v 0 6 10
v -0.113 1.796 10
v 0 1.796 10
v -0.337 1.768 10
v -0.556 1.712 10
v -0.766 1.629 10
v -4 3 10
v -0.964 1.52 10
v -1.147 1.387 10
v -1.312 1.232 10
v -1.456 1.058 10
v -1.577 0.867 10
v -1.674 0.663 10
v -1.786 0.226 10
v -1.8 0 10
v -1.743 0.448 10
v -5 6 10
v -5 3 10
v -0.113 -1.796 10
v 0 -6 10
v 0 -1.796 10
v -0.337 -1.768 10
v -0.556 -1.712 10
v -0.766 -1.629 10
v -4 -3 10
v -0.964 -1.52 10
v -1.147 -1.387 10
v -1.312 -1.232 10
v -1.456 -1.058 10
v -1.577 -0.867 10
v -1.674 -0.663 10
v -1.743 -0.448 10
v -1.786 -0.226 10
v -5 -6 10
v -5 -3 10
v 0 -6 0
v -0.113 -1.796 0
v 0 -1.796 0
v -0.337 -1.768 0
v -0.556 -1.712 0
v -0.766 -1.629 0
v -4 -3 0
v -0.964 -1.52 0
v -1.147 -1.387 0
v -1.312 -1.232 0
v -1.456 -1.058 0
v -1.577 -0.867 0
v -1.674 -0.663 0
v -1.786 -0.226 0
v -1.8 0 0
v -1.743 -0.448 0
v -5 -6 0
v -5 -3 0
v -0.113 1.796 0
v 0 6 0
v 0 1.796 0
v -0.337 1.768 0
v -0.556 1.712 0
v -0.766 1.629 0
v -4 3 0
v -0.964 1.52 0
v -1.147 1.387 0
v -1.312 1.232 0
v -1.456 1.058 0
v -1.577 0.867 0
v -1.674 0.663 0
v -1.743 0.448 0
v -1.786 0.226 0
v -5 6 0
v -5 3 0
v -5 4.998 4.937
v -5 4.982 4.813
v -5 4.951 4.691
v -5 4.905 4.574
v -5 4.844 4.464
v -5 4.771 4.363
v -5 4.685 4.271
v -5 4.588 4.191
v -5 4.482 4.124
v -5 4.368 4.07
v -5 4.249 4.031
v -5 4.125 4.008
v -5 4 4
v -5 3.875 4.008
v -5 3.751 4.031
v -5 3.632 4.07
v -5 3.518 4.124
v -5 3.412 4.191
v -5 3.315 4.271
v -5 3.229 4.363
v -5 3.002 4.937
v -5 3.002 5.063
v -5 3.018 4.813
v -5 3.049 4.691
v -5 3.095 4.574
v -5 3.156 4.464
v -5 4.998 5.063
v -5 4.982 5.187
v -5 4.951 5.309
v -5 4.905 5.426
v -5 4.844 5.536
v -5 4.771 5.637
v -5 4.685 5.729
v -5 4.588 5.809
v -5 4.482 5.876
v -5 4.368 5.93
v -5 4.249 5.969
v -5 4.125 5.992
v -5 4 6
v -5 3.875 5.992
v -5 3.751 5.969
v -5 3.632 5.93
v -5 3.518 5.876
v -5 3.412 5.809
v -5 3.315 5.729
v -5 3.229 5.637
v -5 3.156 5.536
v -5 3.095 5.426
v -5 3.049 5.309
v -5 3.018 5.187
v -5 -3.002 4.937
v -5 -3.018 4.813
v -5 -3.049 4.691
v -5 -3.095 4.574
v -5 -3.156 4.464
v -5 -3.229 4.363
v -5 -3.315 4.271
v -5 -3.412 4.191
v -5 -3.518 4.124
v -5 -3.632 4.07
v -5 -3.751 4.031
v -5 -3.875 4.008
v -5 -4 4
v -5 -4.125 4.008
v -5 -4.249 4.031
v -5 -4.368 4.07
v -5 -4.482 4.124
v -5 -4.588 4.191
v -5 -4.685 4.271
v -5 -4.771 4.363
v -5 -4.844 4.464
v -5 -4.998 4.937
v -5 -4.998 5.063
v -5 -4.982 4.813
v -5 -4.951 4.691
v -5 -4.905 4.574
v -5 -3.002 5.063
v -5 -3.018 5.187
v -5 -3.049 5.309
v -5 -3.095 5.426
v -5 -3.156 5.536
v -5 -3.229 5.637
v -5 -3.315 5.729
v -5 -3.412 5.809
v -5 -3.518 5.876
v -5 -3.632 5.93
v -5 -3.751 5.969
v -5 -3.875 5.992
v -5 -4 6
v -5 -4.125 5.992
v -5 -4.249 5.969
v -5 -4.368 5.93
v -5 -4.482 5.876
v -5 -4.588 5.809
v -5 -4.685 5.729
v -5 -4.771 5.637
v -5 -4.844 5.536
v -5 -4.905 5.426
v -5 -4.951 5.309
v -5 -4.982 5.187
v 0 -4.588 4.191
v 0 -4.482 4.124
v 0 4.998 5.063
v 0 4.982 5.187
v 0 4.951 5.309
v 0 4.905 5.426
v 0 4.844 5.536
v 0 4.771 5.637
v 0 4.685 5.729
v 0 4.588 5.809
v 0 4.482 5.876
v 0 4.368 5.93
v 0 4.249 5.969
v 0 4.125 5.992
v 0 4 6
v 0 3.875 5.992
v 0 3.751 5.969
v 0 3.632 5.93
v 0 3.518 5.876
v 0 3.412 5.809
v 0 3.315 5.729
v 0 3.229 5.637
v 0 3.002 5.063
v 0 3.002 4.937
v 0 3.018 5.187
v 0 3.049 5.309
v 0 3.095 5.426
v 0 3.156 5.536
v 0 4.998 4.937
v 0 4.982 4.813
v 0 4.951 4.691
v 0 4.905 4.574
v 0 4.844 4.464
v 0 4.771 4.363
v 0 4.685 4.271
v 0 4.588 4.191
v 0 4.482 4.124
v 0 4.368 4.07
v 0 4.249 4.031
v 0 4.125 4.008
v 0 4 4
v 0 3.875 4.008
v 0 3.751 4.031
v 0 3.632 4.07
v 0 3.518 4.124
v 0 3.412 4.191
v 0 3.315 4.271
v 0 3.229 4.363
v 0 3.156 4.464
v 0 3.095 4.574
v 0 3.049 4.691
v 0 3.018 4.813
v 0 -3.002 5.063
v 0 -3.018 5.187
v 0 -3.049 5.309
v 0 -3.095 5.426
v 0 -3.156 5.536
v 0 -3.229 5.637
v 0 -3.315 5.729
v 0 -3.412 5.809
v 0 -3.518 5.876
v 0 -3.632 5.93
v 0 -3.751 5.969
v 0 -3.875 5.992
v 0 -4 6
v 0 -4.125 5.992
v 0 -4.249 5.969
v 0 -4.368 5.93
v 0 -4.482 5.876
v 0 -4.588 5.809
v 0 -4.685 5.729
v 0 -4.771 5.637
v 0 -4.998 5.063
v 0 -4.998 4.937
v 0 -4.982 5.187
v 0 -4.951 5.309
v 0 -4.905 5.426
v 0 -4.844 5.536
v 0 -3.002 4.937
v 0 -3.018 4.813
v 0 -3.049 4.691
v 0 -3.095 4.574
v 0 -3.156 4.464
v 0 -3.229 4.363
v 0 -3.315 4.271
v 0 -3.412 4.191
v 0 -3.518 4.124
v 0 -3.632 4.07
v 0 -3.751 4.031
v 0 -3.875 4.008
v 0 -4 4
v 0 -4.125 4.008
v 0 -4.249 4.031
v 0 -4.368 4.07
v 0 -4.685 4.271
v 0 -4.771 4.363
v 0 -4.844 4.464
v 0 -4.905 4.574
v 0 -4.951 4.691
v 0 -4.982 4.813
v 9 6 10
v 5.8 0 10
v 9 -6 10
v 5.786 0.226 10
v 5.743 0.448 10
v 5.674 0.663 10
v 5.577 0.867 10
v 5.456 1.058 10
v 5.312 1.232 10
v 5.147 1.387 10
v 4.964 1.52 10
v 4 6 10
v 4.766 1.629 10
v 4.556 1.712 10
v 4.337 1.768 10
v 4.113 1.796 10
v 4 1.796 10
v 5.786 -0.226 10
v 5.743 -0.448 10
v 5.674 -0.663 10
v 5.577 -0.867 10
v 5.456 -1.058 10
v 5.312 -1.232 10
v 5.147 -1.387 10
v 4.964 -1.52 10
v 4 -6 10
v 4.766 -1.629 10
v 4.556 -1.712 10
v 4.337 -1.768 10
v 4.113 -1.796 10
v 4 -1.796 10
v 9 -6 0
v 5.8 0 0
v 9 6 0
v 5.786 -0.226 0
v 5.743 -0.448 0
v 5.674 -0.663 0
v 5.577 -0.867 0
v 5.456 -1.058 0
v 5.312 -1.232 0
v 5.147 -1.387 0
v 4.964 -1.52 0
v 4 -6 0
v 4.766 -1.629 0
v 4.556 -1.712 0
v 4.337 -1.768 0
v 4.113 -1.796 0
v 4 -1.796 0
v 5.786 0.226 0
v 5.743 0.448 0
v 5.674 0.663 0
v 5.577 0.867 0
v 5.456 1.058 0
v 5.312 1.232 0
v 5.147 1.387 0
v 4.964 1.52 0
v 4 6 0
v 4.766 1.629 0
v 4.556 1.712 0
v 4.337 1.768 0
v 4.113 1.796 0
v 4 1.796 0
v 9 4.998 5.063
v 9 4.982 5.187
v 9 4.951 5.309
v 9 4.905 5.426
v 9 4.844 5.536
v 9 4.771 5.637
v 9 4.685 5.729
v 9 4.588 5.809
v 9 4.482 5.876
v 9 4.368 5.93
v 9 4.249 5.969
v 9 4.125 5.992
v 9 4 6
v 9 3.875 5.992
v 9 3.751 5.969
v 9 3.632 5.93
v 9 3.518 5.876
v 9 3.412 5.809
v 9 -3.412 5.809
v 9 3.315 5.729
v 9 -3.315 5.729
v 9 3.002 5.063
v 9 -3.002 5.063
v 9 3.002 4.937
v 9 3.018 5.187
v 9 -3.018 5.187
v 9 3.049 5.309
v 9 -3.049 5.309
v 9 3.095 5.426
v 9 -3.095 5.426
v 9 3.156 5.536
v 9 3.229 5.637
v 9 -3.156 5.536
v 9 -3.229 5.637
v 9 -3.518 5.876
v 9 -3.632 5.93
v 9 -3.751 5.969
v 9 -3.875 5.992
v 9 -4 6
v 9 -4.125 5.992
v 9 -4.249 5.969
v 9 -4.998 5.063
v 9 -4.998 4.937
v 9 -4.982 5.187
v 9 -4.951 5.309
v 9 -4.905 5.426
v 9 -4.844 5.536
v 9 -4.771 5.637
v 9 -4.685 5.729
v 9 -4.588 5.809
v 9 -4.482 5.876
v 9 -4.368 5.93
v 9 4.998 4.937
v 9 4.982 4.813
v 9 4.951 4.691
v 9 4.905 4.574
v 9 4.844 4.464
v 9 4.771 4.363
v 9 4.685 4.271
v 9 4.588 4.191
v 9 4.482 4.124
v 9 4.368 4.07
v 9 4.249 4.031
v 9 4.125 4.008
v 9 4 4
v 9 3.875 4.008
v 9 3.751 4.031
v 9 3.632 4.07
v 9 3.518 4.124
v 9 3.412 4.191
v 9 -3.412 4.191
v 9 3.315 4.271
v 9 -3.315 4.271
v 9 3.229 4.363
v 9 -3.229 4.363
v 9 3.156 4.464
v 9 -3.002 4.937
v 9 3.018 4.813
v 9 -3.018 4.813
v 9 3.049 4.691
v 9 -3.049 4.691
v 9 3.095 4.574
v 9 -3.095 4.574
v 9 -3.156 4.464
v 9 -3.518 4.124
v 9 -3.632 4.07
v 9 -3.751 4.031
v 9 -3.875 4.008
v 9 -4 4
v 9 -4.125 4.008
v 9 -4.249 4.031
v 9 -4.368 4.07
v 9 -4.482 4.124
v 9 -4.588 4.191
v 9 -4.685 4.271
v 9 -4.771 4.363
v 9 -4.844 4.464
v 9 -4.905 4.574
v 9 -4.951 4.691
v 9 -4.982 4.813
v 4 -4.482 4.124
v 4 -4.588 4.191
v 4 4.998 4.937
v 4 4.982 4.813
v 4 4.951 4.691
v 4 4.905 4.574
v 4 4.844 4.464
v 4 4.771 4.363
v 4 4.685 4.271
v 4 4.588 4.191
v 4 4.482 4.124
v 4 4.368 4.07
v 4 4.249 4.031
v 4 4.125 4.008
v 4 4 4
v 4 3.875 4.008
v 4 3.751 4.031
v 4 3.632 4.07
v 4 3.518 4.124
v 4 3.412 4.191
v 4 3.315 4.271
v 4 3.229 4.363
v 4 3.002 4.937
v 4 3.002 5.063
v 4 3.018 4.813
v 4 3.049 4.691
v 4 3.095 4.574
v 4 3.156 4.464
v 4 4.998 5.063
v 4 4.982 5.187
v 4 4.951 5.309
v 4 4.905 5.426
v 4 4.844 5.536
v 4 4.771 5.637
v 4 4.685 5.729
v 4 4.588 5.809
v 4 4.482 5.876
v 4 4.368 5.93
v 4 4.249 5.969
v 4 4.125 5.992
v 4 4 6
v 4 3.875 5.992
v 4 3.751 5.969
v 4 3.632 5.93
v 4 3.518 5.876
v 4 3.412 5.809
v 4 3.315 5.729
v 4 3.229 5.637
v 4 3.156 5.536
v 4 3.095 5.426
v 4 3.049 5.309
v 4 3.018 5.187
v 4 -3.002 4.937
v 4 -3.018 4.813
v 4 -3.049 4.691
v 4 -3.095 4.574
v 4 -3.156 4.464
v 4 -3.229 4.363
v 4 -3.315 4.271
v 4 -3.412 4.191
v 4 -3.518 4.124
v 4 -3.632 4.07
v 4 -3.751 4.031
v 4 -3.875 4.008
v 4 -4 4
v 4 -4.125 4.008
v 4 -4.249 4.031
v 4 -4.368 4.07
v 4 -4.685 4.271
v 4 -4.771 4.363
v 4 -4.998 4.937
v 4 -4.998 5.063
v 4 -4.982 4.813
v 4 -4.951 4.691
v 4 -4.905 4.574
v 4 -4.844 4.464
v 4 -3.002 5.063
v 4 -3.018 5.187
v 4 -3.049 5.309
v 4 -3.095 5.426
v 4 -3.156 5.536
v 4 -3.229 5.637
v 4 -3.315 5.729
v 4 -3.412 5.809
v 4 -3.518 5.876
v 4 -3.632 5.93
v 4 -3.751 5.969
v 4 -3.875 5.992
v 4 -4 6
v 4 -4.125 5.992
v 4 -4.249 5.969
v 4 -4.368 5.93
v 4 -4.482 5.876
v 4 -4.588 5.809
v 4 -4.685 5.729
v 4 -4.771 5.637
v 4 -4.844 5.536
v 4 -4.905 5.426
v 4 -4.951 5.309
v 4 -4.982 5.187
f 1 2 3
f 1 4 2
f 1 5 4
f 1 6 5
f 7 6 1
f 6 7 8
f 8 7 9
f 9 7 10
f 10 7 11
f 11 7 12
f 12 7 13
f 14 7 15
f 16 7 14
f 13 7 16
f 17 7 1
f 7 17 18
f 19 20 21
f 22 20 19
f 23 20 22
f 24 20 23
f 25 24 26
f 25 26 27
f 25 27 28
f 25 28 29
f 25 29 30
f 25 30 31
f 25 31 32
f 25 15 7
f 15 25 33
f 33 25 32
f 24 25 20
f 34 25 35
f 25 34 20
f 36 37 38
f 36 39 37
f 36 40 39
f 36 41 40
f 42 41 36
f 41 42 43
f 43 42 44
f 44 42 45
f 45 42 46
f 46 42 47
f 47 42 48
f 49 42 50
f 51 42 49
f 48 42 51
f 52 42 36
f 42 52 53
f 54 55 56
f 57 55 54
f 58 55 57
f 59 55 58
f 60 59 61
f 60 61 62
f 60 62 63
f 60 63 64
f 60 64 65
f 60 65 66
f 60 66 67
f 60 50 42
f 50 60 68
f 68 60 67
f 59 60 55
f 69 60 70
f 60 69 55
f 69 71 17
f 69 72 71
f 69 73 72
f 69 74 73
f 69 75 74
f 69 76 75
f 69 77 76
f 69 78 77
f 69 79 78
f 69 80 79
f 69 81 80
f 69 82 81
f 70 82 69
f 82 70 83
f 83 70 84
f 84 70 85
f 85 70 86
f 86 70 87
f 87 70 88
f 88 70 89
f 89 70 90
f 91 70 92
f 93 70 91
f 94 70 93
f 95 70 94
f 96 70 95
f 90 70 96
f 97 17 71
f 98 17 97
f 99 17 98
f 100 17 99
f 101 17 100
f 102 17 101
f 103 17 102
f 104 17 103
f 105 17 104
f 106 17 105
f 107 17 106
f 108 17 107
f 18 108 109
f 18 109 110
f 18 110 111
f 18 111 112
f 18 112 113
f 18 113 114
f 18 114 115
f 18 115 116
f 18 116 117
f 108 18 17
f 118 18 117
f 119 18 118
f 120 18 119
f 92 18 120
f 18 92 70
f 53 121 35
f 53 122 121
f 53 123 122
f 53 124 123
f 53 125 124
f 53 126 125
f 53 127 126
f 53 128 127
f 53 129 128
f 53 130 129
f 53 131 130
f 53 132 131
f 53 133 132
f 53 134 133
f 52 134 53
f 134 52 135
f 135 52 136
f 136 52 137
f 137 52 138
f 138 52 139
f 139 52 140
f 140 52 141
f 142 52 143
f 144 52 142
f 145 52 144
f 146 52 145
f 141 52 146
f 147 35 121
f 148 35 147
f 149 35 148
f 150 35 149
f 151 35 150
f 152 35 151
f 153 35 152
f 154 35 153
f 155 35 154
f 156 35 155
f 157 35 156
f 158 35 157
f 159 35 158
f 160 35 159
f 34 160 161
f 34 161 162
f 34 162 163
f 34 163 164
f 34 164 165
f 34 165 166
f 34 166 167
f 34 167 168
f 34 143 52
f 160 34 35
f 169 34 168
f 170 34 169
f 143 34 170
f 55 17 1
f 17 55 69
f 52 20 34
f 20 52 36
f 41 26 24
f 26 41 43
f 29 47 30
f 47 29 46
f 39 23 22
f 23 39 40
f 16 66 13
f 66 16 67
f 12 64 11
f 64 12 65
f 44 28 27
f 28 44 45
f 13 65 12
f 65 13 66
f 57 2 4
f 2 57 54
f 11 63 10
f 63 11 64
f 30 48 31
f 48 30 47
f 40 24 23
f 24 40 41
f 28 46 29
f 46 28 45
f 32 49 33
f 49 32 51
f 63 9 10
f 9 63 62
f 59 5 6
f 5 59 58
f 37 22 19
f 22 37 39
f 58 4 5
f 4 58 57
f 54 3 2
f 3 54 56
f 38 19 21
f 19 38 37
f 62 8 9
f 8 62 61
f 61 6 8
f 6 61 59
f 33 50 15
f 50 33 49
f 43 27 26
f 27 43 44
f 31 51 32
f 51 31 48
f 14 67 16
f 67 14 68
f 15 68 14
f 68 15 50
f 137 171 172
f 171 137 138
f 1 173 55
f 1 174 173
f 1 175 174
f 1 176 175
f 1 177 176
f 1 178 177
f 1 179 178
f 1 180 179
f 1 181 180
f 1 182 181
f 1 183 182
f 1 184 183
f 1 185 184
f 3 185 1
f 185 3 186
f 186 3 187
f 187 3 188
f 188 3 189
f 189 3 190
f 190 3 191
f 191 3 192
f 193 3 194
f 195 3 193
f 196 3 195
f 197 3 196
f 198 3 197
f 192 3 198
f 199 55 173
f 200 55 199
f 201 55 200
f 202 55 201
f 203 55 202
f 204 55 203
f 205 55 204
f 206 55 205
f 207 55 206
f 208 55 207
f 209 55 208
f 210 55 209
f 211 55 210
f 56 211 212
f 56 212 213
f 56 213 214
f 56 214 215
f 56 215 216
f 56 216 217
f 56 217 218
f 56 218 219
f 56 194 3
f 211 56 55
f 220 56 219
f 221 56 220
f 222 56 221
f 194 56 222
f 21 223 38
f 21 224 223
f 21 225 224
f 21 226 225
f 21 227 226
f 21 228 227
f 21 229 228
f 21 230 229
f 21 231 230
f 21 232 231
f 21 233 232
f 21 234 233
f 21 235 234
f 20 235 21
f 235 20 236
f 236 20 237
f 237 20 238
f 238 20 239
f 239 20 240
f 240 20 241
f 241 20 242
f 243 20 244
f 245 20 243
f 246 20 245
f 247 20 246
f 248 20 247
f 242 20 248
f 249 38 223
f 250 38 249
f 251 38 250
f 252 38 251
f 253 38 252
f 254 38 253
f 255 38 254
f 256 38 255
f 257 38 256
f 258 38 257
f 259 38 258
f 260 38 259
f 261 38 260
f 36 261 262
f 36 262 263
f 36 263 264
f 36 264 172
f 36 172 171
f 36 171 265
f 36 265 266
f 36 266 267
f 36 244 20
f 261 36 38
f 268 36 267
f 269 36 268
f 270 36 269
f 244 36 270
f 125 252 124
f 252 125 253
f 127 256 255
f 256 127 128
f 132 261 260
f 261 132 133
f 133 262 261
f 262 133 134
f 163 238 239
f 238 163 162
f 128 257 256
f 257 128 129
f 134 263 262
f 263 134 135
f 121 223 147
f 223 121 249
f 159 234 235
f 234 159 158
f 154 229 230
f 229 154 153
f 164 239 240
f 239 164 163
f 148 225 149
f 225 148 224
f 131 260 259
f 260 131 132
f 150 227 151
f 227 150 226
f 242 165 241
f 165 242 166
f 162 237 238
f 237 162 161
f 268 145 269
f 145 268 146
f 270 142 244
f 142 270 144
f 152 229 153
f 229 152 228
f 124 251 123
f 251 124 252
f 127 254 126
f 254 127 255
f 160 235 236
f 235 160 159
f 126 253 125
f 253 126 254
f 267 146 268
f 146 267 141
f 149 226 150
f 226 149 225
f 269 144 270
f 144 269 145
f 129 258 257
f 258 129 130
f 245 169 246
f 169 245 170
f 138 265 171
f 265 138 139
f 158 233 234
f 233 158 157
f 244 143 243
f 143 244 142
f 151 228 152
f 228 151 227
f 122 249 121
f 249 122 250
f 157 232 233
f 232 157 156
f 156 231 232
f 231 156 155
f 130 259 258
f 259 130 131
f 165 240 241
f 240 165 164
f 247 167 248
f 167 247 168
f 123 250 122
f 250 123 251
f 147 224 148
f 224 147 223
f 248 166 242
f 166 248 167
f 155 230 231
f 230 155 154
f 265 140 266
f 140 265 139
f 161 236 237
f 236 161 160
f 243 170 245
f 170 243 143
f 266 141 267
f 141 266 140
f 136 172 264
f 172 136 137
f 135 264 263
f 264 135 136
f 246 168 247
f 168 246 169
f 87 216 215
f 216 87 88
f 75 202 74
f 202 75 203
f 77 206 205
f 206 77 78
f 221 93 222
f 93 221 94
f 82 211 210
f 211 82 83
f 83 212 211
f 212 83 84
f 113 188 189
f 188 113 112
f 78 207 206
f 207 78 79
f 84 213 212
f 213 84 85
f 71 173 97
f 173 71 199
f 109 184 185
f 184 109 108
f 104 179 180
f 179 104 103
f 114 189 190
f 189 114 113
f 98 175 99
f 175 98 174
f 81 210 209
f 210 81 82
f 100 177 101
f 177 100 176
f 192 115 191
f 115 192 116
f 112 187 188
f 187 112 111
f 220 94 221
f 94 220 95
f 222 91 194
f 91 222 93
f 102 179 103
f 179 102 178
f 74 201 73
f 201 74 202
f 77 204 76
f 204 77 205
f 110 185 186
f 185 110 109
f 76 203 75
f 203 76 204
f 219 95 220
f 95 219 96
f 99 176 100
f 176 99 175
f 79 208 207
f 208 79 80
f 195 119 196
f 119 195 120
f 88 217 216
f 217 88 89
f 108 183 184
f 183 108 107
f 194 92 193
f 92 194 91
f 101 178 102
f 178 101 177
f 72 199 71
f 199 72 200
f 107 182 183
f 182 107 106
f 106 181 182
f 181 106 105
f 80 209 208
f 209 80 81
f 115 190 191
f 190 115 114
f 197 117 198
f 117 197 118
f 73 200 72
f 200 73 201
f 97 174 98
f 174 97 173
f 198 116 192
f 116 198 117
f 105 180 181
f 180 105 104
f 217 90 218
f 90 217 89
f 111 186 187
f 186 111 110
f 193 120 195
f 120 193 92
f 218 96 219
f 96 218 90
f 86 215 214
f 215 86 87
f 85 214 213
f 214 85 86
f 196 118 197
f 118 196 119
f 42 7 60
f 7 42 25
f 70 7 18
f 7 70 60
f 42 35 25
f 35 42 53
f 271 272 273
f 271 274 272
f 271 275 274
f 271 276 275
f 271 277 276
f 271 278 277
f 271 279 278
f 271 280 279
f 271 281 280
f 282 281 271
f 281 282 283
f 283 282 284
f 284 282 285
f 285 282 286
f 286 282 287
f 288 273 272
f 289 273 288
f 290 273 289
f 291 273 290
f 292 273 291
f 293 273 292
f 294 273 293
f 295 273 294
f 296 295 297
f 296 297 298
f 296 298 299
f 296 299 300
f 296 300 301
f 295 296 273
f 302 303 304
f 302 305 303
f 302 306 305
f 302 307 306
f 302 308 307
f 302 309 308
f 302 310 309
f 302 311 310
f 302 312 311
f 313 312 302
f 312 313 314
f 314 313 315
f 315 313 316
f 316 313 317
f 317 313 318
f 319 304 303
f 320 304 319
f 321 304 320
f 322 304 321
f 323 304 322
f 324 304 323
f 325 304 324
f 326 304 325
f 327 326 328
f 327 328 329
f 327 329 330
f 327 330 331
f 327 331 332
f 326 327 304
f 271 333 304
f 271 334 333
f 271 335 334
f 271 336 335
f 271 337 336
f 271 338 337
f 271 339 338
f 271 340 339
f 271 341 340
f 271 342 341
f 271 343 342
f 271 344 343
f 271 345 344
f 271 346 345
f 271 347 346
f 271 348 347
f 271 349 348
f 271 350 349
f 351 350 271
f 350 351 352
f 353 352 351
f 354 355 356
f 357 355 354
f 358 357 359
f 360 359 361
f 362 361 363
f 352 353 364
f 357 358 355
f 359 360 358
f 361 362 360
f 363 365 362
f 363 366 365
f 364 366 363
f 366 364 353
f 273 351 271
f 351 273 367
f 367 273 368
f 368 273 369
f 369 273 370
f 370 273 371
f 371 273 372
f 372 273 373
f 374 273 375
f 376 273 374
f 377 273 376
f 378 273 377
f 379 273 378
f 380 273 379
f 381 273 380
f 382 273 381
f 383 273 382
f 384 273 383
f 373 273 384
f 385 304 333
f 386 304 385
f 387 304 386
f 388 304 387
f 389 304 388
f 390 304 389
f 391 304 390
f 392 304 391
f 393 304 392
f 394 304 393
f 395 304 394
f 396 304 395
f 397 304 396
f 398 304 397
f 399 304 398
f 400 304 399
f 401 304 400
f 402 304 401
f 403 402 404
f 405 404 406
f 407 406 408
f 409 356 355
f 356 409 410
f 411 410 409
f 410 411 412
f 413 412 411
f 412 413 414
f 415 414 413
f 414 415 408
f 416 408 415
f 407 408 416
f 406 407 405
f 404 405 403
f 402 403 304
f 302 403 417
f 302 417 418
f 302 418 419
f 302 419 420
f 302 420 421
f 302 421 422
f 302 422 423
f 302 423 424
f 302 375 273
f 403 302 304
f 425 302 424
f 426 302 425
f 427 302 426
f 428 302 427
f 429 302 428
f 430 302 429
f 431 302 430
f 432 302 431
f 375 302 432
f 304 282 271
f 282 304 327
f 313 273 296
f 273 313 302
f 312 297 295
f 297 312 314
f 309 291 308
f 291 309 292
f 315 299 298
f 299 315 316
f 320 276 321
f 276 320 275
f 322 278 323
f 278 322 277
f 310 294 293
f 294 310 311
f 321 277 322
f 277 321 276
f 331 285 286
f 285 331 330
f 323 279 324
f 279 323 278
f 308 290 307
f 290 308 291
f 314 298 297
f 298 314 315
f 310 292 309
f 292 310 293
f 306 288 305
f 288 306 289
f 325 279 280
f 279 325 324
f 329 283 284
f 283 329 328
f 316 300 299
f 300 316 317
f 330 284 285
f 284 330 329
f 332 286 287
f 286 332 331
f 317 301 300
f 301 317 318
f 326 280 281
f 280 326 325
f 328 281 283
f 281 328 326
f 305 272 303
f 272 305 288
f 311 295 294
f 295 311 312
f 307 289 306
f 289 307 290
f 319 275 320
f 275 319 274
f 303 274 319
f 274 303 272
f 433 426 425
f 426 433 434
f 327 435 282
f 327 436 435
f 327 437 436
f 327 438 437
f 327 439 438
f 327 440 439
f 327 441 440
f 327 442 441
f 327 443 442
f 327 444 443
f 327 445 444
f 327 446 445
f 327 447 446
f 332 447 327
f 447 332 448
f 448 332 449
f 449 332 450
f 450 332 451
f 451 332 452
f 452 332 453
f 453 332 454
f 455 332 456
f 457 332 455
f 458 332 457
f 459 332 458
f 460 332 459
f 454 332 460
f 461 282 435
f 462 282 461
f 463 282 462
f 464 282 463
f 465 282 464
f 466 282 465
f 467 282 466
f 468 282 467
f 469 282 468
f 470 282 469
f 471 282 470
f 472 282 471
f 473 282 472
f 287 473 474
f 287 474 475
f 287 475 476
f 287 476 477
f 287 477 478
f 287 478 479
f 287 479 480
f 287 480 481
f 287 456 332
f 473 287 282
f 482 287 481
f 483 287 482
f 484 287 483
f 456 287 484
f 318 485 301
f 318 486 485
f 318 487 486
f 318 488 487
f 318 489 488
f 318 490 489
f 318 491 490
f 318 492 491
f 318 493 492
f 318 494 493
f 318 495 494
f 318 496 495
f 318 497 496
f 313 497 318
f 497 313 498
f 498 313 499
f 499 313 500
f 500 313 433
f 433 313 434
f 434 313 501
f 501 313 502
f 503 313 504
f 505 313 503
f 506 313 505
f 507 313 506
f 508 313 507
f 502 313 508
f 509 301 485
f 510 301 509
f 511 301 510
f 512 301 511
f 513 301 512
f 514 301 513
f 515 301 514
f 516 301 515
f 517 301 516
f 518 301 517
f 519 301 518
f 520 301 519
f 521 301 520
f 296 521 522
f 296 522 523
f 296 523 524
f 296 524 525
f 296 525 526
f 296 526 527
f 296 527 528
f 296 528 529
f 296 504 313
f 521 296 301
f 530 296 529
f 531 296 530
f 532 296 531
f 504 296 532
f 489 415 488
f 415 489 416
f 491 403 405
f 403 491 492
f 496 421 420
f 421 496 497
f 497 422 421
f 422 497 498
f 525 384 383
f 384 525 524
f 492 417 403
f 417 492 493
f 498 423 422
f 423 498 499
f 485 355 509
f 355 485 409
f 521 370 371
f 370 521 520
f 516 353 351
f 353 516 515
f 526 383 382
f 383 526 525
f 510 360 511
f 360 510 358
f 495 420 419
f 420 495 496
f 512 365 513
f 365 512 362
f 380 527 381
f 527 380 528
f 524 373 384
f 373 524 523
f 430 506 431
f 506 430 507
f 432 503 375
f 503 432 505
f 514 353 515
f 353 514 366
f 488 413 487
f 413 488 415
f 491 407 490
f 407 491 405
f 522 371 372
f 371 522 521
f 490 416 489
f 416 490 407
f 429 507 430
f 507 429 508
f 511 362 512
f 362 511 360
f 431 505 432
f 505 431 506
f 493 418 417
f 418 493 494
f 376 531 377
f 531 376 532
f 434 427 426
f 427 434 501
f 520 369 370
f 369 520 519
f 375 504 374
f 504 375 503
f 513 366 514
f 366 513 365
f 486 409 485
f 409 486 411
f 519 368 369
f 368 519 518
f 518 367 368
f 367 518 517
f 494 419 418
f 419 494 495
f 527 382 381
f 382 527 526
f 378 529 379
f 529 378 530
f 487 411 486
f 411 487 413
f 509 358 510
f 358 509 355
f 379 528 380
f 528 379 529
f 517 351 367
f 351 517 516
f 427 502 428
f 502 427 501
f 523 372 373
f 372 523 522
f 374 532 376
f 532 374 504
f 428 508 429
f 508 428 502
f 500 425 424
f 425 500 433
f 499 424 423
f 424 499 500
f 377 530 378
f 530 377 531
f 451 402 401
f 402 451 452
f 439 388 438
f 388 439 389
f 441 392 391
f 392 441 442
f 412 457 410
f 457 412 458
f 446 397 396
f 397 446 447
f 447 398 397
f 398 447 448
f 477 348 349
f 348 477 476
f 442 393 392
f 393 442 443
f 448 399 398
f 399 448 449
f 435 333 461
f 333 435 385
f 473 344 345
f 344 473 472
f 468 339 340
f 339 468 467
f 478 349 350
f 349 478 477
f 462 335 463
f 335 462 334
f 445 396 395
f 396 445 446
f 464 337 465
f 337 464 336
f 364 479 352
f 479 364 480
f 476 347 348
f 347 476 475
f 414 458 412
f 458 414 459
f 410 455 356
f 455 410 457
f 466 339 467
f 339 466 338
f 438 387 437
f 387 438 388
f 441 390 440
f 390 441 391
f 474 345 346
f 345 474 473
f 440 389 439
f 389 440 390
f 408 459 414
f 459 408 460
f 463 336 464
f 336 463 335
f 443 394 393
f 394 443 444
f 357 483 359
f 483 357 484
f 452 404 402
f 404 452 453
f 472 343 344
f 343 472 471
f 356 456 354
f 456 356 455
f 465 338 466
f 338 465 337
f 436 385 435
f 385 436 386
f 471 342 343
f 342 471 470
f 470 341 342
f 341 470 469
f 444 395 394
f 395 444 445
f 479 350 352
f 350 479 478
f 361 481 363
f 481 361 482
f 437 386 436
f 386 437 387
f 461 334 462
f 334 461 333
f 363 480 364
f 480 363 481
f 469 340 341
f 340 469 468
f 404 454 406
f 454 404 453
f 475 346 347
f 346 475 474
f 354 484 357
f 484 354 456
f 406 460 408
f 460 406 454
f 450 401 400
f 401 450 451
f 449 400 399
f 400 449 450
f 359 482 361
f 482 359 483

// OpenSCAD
$fn=50;

ID=3.6;
XD=ID*2;
HH=10;
WW=10;
DD=12;

module unit(diam,magnet_slot=false) {
    difference() {
        difference() {
            translate([0,0,HH/2]) cube([WW,DD,HH],center=true);
            cylinder(15,d=ID);
        }
        // screwholes
        translate([0,-20,0]) cube([20,40,HH]);
        for (qq=[-1,1]) {
            #translate([-10,qq*4,HH/2]) rotate([0,90,0]) cylinder(WW,d=diam);
        }
        // magnet slot
        if (magnet_slot)
            #translate([-(WW/2-.5),0,HH/2]) cube([1,6,HH],center=true);
    }
}

module main() {
    unit(2,magnet_slot=true);
    translate([4,0,0]) mirror([1,0,0]) unit(2);
}

main();
